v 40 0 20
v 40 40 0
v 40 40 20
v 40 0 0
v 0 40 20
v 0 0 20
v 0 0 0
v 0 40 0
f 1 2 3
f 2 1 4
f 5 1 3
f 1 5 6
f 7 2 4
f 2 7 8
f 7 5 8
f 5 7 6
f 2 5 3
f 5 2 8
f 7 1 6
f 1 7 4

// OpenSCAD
// Parameters
block_size = [40, 40, 20];         // Width, Depth, Height of the block
cutout_size = 10;                  // Size of the square base of each pyramid
cutout_depth = 10;                 // Depth of the pyramid cutout
spacing = 5;                       // Spacing between cutouts

module hollowed_block() {
    difference() {
        // Main block
        cube(block_size, center = false);

        // Pyramidal cutouts
        for (x = [0, 1])
            for (y = [0, 1])
                translate([
                    x * (cutout_size + spacing) + (block_size[0] - 2 * cutout_size - spacing) / 2,
                    y * (cutout_size + spacing) + (block_size[1] - 2 * cutout_size - spacing) / 2,
                    block_size[2] - cutout_depth
                ])
                pyramid_cutout(cutout_size, cutout_depth);
    }
}

// Pyramid cutout module
module pyramid_cutout(base, height) {
    polyhedron(
        points=[
            [0, 0, 0],
            [base, 0, 0],
            [base, base, 0],
            [0, base, 0],
            [base/2, base/2, -height]
        ],
        faces=[
            [0, 1, 4],
            [1, 2, 4],
            [2, 3, 4],
            [3, 0, 4],
            [0, 1, 2, 3]
        ]
    );
}

// Render the model
hollowed_block();
